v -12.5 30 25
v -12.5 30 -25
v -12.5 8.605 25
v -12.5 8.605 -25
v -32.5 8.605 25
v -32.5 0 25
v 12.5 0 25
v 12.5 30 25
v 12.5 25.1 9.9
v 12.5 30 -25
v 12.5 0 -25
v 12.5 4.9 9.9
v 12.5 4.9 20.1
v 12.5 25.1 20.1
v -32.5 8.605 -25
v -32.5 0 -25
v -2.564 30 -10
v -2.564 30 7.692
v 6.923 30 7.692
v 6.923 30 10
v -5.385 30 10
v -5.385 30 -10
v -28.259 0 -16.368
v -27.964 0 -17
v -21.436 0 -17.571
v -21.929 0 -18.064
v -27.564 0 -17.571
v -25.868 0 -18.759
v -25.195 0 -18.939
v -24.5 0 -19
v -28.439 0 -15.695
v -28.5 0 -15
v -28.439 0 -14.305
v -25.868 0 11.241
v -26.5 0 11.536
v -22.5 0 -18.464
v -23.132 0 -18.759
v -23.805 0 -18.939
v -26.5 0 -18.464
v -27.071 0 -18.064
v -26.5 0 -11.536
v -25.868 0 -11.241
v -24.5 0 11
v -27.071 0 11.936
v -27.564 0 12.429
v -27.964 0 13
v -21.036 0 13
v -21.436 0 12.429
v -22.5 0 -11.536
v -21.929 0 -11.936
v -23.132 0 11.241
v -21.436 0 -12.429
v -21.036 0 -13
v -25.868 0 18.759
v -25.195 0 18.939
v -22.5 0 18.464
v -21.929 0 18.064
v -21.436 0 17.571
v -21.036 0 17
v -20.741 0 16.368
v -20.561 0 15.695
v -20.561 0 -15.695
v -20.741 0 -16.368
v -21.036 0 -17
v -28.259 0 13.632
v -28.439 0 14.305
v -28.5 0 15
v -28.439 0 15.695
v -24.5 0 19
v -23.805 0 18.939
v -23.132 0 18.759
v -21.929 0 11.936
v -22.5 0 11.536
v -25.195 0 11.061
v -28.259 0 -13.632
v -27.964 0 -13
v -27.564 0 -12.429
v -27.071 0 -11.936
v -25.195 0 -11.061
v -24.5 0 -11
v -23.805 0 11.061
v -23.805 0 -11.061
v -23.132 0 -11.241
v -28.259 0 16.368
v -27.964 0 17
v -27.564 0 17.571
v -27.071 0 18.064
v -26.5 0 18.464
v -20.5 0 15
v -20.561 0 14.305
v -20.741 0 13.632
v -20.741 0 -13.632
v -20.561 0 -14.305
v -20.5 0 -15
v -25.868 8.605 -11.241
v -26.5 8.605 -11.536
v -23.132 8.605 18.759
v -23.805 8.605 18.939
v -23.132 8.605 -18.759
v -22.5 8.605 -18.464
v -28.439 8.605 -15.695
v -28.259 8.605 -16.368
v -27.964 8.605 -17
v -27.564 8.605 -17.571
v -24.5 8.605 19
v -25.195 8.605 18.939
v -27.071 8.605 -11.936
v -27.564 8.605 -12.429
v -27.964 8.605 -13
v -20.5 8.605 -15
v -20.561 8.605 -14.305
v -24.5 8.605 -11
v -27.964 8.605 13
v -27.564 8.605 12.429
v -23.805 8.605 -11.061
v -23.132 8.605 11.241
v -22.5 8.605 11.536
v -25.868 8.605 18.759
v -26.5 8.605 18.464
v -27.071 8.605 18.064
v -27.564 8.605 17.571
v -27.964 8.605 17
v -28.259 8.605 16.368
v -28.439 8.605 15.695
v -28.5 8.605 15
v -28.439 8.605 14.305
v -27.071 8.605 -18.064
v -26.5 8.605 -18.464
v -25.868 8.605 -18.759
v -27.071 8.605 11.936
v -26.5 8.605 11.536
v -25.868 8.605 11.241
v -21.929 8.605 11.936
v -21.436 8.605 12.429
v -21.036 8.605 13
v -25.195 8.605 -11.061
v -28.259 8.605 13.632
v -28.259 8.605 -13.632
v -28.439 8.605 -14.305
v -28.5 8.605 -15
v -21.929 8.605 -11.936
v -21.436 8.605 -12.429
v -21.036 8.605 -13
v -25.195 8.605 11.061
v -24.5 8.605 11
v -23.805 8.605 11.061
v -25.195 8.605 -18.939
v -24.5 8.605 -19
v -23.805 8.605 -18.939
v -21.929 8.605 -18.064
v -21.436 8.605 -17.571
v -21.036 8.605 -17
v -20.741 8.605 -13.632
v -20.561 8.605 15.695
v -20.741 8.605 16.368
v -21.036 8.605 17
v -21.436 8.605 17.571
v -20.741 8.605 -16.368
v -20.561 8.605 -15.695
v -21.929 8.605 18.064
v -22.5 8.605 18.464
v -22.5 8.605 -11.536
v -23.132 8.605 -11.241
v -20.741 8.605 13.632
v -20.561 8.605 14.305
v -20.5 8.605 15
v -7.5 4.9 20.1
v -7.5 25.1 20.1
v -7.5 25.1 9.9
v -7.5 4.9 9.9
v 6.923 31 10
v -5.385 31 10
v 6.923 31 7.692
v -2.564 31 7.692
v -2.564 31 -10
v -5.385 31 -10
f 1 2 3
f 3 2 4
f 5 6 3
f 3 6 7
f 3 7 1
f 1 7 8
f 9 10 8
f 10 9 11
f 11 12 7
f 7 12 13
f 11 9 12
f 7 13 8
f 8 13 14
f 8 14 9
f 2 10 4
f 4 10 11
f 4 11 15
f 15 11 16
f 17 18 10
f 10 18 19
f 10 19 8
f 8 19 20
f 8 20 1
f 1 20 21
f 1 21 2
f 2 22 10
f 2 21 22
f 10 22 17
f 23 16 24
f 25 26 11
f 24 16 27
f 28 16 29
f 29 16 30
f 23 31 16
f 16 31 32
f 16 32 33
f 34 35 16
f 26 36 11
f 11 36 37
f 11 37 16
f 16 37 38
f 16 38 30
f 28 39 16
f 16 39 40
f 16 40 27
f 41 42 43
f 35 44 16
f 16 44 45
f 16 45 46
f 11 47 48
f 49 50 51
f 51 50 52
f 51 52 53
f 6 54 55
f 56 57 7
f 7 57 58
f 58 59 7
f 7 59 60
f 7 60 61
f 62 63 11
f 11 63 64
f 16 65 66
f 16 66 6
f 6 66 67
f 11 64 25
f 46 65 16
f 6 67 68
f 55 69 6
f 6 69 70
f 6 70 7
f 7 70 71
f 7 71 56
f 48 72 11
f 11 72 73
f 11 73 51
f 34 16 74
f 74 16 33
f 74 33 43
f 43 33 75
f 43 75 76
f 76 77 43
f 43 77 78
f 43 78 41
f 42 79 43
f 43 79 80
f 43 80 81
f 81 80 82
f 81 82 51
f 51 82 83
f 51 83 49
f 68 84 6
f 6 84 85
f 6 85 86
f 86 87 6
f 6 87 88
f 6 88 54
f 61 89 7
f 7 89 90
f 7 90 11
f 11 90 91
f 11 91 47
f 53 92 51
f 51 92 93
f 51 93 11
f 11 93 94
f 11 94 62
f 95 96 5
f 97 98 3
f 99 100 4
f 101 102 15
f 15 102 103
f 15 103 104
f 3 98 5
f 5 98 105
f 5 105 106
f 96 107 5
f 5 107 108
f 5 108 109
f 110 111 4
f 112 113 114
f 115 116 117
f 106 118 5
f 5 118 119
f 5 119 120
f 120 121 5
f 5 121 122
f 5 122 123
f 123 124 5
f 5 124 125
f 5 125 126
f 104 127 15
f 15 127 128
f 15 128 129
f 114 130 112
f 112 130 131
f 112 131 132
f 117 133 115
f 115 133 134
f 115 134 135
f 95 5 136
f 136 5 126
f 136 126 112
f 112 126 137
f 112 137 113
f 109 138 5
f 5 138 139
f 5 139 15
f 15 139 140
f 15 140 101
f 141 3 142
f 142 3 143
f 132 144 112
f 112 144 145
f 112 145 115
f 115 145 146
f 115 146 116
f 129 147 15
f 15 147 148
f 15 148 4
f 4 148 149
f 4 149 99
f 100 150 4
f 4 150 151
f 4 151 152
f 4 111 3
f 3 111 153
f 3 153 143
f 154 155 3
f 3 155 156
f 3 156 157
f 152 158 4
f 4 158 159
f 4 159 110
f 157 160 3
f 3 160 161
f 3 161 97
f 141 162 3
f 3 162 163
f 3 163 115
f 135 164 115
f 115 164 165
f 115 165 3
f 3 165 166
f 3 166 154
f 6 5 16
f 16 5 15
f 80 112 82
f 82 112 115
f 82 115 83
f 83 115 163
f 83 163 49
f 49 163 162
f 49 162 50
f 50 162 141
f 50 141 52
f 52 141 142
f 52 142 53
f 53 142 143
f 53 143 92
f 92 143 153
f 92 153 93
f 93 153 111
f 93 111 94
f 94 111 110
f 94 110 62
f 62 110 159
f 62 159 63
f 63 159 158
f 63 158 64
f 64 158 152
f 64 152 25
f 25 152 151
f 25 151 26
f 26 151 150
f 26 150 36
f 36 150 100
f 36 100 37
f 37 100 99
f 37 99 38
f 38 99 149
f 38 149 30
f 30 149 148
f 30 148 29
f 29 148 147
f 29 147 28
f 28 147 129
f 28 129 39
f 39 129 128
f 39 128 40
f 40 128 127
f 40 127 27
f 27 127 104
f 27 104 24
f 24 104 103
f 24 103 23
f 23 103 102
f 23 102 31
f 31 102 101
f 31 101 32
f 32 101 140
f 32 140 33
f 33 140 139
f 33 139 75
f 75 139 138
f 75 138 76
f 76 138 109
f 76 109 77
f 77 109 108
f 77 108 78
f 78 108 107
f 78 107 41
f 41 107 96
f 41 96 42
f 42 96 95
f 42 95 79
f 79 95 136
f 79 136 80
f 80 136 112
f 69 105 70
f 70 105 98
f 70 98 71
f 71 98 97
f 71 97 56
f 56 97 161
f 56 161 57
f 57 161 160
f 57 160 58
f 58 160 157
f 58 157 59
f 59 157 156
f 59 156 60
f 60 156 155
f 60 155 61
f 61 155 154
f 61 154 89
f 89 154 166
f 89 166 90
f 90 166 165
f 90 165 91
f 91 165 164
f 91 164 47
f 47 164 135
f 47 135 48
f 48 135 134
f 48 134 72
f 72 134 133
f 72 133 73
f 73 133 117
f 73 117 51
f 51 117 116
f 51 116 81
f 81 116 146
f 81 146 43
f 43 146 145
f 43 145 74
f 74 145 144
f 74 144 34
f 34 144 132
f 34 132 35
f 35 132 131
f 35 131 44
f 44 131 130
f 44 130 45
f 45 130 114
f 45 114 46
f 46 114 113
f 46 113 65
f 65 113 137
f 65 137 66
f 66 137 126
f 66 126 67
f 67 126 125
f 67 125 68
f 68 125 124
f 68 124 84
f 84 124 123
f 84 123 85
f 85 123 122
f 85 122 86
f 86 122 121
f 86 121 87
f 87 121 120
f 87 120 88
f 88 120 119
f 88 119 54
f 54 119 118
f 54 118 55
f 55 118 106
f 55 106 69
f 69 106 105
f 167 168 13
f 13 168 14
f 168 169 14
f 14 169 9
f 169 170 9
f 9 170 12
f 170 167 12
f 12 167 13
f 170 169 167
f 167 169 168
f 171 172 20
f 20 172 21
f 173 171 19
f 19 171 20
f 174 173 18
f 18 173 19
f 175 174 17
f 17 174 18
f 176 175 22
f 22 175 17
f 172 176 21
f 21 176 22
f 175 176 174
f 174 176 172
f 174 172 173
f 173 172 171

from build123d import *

# Parameters (mm, degrees)
SKETCH1_W           = 25
SKETCH1_H           = 50
BOSS_EXTRUDE1_DEPTH = 30
SKETCH2_W           = 50
SKETCH2_H           = 8.605036789
BOSS_EXTRUDE2_DEPTH = 20
SKETCH3_R           = 4
CUT_EXTRUDE1_DEPTH  = 47.249264327
SKETCH4_W           = 10.2
SKETCH4_H           = 20.2
CUT_EXTRUDE2_DEPTH  = 20
BOSS_EXTRUDE3_DEPTH = 1


with BuildPart() as part:
    # Sketch1 → Boss-Extrude1 (new body)
    with BuildSketch(Plane(origin=(0, 0, 0), x_dir=(1, 0, 0), z_dir=(0, 1, 0))):
        Rectangle(SKETCH1_W, SKETCH1_H)
    extrude(amount=BOSS_EXTRUDE1_DEPTH)

    # Sketch2 → Boss-Extrude2 (add)
    with BuildSketch(Plane.ZY.offset(12.5)):
        with Locations((0, 4.302518394)):
            Rectangle(SKETCH2_W, SKETCH2_H)
    extrude(amount=BOSS_EXTRUDE2_DEPTH)

    # Sketch3 → Cut-Extrude1 (cut, through all)
    with BuildSketch(Plane(origin=(0, 8.605036789, 0), x_dir=(1, 0, 0), z_dir=(0, 1, 0))):
        with Locations(Location((-24.5, 15, 0), (0, 0, 270))):
            Circle(SKETCH3_R)
        with Locations(Location((-24.5, -15, 0), (0, 0, 270))):
            Circle(SKETCH3_R)
    extrude(amount=-CUT_EXTRUDE1_DEPTH, mode=Mode.SUBTRACT)

    # Sketch4 → Cut-Extrude2 (cut)
    with BuildSketch(Plane(origin=(12.5, 0, 0), x_dir=(0, 0, -1), z_dir=(1, 0, 0))):
        with Locations((-15, 15)):
            Rectangle(SKETCH4_W, SKETCH4_H)
    extrude(amount=-CUT_EXTRUDE2_DEPTH, mode=Mode.SUBTRACT)

    # Sketch5 → Boss-Extrude3 (add)
    with BuildSketch(Plane(origin=(0, 30, 0), x_dir=(1, 0, 0), z_dir=(0, 1, 0))):
        Polygon((-5.384615385, -10), (-5.384615385, 10), (-2.564102564, 10), (-2.564102564, -7.692307692), (6.923076923, -7.692307692), (6.923076923, -10), align=None)
    extrude(amount=BOSS_EXTRUDE3_DEPTH)


solid = part.part
